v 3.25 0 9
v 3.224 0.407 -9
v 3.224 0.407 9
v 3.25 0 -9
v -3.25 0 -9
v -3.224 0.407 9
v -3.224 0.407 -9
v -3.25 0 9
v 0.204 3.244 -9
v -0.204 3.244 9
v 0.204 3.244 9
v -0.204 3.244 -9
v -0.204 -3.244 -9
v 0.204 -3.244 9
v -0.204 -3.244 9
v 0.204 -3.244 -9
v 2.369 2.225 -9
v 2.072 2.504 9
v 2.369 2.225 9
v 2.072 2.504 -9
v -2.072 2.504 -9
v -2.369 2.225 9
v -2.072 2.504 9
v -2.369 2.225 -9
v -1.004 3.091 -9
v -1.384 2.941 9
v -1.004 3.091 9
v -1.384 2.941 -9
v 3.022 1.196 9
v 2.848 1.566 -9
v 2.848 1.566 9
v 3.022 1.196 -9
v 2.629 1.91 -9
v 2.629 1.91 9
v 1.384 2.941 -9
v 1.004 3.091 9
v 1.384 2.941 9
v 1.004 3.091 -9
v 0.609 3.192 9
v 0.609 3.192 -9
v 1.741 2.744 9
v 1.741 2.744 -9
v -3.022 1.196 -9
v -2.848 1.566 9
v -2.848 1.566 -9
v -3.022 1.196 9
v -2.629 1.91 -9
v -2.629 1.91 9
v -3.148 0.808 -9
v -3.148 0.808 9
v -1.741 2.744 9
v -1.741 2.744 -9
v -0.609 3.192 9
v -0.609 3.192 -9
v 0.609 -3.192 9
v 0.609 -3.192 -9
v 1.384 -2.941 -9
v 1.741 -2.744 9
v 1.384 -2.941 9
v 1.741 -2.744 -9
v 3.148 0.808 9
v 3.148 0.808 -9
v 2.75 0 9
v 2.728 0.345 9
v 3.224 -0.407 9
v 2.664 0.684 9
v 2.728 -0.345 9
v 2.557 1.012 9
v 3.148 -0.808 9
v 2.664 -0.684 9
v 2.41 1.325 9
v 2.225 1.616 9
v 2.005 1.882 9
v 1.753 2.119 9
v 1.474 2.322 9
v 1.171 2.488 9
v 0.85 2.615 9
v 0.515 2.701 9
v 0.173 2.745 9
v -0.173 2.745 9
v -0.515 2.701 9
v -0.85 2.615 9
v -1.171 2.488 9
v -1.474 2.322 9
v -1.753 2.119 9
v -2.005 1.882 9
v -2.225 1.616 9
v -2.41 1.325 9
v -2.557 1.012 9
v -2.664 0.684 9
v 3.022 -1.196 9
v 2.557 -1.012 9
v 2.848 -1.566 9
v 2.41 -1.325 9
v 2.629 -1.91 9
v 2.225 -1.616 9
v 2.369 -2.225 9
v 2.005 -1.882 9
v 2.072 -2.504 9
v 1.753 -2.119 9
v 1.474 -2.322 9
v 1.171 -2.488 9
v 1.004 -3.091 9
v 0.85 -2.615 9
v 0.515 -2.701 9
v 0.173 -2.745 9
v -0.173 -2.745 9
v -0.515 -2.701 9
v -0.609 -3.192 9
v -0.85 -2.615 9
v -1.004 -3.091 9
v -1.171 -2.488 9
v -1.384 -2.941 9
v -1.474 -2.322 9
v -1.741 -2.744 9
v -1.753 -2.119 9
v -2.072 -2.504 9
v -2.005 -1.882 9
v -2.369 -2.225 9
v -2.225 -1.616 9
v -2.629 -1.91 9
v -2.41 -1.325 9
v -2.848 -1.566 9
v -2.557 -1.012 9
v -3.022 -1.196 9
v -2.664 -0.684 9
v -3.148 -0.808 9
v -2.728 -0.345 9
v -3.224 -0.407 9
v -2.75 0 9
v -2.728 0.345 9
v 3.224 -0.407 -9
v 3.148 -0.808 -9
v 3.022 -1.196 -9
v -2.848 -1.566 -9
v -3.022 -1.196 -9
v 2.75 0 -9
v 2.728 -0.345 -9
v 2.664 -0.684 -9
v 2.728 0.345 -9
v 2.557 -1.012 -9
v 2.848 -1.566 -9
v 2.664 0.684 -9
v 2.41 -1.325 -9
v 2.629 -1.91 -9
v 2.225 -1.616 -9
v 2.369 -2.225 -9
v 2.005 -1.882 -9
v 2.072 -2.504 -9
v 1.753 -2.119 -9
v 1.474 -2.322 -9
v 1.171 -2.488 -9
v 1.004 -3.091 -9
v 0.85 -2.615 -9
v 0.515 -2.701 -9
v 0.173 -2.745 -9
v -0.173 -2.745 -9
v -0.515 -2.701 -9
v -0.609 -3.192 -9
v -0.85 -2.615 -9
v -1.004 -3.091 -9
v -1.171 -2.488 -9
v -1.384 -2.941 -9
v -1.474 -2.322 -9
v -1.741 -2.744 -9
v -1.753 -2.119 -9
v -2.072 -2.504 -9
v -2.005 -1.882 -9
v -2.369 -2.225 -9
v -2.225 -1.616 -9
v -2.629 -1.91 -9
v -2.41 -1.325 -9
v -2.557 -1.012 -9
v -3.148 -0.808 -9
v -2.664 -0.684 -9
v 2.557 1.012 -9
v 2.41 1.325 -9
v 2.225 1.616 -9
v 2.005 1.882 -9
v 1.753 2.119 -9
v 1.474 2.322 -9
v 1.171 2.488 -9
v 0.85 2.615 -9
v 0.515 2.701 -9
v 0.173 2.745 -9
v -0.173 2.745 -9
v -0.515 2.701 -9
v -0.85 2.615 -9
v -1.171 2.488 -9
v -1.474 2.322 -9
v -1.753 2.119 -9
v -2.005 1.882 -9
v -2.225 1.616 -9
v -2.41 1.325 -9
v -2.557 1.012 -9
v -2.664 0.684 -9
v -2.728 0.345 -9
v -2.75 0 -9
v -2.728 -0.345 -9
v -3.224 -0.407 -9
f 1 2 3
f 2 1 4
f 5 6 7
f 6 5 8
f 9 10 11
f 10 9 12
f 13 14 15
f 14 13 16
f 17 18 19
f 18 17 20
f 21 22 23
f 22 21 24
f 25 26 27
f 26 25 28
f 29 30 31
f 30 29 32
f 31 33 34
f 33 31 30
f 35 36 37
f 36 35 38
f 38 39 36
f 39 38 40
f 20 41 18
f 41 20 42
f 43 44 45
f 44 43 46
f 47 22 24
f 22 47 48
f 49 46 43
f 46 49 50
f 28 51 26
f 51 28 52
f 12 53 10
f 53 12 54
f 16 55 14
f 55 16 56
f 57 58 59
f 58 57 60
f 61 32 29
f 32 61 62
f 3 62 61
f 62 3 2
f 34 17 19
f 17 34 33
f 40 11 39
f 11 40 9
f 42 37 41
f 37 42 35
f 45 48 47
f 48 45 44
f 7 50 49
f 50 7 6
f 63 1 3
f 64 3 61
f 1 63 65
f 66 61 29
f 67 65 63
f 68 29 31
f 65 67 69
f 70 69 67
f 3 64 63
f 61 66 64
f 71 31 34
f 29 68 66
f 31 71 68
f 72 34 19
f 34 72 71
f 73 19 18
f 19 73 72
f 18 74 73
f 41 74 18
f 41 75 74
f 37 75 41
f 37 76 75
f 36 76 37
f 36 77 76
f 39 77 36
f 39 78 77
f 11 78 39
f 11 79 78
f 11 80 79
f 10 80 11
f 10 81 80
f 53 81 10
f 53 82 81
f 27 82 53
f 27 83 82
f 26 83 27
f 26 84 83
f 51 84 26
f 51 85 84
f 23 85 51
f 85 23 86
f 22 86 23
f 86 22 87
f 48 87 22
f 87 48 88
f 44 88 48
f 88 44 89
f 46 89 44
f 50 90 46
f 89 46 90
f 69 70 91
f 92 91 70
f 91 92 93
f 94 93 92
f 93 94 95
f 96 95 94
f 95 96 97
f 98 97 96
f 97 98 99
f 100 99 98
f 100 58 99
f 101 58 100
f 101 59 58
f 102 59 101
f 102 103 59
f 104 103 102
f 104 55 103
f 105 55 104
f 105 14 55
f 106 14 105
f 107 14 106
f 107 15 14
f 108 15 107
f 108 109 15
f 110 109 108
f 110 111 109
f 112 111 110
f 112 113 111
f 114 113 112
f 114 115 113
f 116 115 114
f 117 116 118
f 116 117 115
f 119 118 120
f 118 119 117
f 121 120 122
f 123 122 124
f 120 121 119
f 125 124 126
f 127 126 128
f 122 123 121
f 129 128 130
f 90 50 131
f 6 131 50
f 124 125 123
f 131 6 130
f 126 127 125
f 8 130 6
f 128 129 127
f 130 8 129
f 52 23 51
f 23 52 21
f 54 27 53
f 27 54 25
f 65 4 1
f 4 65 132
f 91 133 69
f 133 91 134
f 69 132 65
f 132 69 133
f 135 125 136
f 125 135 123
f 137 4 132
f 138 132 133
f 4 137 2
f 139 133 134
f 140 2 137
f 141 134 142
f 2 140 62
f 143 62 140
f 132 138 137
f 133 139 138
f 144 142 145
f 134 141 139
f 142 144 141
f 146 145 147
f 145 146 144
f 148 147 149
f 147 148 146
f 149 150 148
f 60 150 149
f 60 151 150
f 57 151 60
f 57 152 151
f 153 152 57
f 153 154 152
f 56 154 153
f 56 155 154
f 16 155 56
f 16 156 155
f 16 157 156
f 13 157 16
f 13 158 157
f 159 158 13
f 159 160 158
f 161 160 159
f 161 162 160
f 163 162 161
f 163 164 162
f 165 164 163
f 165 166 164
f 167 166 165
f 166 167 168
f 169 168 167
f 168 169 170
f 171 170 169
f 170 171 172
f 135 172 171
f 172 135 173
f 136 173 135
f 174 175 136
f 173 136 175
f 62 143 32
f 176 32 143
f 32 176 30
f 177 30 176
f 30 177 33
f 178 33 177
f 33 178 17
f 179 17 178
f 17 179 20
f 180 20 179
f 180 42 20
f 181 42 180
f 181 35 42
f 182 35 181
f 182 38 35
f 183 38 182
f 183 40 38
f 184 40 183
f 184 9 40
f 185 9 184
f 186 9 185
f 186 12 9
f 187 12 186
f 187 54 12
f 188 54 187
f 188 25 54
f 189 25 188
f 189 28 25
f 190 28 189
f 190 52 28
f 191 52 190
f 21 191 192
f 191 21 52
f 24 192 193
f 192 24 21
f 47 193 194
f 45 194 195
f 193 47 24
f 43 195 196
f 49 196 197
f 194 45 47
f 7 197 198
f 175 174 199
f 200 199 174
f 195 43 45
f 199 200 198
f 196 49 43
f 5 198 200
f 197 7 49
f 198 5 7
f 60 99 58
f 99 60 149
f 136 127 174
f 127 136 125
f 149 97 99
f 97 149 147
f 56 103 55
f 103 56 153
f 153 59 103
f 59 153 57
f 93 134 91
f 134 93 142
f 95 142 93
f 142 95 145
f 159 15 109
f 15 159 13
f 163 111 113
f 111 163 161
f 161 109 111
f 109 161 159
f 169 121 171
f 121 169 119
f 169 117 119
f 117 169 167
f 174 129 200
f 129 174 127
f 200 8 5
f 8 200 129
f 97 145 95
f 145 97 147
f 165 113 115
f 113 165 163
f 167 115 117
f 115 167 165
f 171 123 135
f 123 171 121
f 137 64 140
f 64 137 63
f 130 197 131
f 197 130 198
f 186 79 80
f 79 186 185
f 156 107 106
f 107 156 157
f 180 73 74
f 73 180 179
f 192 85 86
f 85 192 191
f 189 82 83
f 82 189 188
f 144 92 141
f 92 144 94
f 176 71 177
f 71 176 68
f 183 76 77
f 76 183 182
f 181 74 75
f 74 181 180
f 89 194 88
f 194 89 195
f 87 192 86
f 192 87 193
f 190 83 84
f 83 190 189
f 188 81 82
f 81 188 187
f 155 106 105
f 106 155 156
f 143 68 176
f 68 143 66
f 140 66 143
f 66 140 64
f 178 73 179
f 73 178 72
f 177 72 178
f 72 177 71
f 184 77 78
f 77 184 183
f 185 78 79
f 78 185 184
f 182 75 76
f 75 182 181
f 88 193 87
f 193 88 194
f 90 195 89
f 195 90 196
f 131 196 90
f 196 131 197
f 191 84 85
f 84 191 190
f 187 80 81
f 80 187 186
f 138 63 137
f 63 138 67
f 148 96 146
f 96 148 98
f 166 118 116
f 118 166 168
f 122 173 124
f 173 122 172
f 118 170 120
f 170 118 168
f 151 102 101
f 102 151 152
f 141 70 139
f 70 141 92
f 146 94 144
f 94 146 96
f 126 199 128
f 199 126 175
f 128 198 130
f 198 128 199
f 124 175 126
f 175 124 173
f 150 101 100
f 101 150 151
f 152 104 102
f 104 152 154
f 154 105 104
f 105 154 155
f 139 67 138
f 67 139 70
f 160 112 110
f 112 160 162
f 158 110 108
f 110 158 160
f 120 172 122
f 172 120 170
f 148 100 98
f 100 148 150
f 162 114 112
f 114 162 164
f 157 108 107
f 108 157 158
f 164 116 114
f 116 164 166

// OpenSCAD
$fn = 50;


difference() {
	union() {
		translate(v = [0, 0, -9.0000000000]) {
			cylinder(h = 18, r = 3.2500000000);
		}
	}
	union() {
		translate(v = [0, 0, -100.0000000000]) {
			cylinder(h = 200, r = 2.7500000000);
		}
	}
}
